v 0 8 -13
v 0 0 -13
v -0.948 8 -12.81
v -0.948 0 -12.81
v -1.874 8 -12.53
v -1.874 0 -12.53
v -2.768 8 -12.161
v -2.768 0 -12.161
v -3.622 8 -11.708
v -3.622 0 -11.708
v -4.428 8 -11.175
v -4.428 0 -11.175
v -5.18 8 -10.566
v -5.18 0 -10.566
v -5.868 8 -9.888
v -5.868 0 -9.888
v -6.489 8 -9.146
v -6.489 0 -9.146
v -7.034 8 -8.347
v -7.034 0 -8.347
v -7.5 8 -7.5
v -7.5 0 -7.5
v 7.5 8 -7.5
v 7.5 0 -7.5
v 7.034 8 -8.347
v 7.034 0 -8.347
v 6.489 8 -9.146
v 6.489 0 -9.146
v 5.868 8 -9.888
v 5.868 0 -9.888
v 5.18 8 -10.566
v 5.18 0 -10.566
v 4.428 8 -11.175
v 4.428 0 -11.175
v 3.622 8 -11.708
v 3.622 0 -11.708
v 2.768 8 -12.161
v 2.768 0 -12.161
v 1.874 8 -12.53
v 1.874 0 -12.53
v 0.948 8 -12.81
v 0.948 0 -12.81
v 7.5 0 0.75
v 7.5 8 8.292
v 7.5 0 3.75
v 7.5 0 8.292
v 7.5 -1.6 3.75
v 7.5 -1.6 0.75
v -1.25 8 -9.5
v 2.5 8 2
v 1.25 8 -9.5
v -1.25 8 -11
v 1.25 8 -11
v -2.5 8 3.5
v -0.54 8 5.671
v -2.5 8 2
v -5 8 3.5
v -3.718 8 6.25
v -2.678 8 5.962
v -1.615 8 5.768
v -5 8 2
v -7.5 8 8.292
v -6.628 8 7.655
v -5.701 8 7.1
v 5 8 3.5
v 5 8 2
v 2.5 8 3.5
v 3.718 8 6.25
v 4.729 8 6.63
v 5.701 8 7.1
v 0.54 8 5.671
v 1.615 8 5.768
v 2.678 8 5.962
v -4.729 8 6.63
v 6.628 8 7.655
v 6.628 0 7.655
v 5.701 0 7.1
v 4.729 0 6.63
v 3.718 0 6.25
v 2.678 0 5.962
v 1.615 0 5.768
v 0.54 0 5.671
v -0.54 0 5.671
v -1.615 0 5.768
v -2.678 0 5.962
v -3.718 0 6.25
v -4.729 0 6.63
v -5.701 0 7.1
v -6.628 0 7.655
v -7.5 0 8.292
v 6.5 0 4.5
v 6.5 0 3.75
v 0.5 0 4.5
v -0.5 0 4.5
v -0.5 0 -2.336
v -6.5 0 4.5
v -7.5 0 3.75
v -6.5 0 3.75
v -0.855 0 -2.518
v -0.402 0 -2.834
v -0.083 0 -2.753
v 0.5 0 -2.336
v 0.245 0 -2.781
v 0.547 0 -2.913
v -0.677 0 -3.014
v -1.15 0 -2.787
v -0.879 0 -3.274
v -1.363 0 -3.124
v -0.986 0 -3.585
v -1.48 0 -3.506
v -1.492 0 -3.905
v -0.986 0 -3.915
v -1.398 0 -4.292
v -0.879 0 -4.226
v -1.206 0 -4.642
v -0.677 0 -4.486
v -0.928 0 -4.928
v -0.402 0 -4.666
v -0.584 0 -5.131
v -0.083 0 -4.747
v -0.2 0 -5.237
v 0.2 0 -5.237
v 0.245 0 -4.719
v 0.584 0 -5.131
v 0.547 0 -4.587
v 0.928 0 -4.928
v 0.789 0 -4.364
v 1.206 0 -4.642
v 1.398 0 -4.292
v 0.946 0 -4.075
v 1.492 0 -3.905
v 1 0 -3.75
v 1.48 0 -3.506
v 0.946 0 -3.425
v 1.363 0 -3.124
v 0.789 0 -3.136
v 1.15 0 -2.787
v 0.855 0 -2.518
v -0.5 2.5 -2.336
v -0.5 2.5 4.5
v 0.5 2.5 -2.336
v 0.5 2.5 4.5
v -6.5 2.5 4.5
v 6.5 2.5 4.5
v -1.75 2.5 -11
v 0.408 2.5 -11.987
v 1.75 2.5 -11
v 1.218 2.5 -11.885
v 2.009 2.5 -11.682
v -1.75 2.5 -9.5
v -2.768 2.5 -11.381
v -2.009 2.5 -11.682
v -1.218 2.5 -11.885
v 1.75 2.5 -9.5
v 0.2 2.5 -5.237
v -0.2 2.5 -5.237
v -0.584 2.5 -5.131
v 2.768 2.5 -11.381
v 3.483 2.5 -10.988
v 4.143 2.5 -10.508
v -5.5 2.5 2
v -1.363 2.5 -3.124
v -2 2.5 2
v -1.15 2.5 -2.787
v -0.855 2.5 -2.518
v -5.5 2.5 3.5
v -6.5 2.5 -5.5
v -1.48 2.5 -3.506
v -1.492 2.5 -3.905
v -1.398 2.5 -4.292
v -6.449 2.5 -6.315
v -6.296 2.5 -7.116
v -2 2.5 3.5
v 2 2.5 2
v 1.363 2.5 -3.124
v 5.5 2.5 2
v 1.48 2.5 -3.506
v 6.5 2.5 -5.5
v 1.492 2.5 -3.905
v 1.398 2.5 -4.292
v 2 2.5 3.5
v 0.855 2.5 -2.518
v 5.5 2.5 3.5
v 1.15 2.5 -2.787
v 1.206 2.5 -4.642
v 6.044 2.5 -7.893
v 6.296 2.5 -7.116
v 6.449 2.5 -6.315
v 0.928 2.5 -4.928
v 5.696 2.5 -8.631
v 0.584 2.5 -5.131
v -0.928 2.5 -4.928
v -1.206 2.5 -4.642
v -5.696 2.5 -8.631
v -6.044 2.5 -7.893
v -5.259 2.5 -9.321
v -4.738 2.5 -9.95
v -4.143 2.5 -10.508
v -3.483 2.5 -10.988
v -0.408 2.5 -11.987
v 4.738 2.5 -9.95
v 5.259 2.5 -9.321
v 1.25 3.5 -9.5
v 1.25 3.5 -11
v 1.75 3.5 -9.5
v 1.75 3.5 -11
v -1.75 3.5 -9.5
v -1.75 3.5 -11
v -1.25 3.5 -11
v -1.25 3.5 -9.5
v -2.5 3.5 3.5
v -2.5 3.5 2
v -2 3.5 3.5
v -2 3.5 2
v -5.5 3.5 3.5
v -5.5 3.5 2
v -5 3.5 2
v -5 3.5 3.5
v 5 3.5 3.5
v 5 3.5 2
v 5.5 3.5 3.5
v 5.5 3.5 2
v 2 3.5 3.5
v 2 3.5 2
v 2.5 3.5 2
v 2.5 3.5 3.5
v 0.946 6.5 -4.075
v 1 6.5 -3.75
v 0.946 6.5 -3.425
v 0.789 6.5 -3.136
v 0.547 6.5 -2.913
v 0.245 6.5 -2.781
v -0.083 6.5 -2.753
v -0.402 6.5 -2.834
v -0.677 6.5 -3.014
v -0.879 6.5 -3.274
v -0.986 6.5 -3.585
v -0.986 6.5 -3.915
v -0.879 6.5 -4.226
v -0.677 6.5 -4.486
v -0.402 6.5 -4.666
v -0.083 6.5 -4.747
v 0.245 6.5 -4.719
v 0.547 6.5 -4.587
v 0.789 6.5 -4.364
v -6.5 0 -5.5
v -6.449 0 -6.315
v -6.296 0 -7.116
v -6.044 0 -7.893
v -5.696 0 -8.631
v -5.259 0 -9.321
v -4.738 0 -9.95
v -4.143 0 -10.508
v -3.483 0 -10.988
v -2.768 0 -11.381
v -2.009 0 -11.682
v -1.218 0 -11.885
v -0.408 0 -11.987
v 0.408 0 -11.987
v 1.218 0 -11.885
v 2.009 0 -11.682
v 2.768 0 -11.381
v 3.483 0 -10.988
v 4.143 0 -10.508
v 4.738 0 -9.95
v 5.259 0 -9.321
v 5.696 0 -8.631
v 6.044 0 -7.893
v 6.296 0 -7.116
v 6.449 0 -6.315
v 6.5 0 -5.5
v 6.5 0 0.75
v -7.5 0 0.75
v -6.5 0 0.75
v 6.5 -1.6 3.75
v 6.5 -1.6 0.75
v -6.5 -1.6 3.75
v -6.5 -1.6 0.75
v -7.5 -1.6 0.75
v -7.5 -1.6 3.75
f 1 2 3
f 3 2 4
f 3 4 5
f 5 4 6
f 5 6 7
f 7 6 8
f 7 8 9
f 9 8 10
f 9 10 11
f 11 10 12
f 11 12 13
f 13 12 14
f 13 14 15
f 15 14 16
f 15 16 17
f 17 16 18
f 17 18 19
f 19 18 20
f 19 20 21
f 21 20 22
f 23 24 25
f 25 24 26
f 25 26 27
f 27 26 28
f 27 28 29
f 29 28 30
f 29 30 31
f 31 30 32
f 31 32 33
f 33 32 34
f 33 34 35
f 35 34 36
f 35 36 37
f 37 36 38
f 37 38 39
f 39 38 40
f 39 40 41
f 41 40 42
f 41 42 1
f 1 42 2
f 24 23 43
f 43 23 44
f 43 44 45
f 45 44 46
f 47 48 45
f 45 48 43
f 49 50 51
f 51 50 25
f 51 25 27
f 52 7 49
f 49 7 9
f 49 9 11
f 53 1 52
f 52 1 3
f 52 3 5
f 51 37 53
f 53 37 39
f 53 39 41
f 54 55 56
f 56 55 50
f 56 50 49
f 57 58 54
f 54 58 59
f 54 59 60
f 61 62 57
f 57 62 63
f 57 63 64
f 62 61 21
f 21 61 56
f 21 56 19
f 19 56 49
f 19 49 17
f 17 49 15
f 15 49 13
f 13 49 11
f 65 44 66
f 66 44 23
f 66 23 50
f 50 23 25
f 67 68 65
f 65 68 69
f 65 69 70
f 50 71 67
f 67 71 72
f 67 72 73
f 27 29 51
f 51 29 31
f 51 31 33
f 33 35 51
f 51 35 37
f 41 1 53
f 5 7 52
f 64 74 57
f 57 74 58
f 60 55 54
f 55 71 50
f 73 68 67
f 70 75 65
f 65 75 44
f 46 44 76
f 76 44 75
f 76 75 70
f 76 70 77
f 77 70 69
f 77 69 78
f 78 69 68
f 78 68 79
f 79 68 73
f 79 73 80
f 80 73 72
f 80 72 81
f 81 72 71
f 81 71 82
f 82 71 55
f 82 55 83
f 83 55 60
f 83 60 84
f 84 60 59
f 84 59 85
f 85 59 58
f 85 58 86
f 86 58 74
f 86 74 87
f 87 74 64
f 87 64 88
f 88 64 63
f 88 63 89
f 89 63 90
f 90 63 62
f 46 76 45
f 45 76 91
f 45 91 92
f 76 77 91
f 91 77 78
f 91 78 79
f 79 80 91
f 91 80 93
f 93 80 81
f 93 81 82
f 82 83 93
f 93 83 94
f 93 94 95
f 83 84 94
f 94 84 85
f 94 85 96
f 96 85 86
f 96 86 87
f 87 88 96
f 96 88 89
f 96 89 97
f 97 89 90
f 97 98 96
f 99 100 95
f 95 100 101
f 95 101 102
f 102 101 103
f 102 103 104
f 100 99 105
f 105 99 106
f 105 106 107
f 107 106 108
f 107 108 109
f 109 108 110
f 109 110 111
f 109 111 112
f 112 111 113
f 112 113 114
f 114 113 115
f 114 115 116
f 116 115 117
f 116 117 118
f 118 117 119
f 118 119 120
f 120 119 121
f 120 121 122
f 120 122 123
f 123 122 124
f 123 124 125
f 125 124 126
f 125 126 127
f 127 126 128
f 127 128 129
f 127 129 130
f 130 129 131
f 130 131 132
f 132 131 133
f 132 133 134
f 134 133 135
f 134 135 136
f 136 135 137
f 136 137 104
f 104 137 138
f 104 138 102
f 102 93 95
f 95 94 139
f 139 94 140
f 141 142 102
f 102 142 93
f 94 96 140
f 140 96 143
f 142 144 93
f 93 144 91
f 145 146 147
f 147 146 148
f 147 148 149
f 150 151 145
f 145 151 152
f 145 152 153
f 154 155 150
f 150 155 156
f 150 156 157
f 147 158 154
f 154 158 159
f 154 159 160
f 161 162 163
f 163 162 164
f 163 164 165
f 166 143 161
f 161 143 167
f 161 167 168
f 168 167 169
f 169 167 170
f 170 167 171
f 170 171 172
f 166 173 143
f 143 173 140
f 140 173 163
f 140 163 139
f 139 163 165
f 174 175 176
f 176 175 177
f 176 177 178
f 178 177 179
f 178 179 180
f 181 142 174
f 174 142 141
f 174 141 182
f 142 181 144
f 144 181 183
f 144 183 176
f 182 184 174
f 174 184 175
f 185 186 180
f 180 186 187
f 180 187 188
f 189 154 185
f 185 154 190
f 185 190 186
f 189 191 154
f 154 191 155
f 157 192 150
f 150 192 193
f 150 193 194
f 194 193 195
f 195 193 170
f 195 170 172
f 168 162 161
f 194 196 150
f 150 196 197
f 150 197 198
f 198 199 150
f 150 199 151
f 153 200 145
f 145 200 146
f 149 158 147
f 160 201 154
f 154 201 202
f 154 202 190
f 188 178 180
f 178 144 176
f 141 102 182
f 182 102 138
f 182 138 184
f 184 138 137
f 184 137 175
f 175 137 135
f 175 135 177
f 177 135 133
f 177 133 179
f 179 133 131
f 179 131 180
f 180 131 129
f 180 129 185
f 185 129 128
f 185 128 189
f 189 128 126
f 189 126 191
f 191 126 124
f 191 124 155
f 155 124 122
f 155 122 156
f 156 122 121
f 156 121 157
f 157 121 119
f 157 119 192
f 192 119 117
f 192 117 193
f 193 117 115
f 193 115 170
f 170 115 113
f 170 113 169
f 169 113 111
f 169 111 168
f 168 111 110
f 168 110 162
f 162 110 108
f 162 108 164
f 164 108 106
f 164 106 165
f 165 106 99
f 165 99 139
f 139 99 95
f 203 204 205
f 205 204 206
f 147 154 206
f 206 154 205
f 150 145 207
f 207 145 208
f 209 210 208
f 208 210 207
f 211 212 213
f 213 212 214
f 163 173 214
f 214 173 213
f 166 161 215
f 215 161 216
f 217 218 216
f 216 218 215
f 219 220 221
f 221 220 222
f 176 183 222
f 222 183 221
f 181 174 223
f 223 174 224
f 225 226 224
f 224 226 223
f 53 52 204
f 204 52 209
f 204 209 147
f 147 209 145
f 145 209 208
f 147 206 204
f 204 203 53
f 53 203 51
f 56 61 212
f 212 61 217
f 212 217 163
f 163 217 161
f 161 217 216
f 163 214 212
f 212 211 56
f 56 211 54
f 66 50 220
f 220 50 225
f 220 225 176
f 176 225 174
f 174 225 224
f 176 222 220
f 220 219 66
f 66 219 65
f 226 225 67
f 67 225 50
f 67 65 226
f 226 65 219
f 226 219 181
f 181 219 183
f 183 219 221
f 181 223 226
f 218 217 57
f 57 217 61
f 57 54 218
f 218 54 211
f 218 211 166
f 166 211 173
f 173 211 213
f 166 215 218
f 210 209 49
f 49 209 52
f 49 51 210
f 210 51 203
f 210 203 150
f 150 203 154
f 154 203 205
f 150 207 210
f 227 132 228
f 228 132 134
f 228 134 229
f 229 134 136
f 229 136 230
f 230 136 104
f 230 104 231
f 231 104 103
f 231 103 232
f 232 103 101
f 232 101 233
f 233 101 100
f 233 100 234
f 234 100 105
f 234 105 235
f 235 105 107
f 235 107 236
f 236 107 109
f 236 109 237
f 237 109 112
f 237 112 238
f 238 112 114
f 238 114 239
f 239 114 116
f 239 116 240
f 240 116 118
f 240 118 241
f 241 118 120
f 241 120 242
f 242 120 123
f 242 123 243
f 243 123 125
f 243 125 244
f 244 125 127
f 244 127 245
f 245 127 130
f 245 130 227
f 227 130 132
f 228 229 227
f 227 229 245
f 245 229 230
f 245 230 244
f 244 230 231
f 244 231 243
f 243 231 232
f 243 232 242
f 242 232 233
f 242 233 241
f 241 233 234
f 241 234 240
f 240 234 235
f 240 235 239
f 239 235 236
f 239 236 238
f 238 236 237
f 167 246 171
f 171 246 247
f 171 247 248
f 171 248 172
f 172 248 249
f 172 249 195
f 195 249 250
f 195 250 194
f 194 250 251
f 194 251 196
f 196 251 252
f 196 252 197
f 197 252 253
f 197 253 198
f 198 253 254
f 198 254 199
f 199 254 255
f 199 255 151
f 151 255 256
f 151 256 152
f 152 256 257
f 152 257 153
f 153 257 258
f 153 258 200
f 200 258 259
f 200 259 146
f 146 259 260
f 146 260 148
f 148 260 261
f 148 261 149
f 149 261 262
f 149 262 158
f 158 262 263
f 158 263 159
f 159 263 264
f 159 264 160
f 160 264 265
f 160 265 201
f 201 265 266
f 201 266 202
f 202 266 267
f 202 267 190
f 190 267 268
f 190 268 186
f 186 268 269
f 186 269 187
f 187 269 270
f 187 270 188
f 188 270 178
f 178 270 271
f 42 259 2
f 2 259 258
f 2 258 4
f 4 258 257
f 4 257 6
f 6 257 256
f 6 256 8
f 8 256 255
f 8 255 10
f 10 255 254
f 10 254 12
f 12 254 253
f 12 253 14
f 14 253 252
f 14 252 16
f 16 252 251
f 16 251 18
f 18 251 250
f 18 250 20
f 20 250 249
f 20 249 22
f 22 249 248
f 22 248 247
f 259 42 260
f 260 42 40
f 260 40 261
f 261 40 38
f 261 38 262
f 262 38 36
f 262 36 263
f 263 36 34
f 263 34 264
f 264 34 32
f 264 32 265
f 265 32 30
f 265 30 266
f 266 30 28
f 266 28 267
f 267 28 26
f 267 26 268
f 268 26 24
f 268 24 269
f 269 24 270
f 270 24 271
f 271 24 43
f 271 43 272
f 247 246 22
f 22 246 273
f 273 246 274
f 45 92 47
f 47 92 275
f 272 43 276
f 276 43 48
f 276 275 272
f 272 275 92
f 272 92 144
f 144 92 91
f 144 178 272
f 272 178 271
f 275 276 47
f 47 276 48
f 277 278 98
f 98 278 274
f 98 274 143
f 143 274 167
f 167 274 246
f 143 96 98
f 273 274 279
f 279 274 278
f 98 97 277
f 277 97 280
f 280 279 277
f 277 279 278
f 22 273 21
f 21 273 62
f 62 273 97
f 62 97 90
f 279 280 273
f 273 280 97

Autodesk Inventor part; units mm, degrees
ref_plane "YZ Plane" through (0, 0, 0) normal (1, 0, 0) x (0, 1, 0)
ref_plane "XZ Plane" through (0, 0, 0) normal (0, 1, 0) x (-1, 0, 0)
ref_plane "XY Plane" through (0, 0, 0) normal (0, 0, 1) x (1, 0, 0)
sketch "Sketch1" plane through (0, 0, 0) normal (0, 1, 0) x (-1, 0, 0)
  line L0 (-7.5, 5.5) -> (7.5, 5.5)
  line L1 (7.5, 5.5) -> (7.5, -5.5)
  line L2 (7.5, -5.5) -> (-7.5, -5.5)
  line L3 (-7.5, -5.5) -> (-7.5, 5.5)
  line L4 (-7.5, 5.5) -> (7.5, -5.5) construction
  line L5 (7.5, 5.5) -> (-7.5, -5.5) construction
  circle A0 centre (0, -5.5) radius 7.5 construction
  arc A1 (-7.5, -5.5) -> (7.5, -5.5) centre (0, -5.5) ccw
  point P0 (0, 0)
  dimension "d0" = 11
  dimension "d1" = 15
extrude "Extrusion1" add sketch "Sketch1" along normal blind 8
sketch "Sketch2" plane through (0, 0, 0) normal (0, -1, 0) x (1, 0, 0)
  line L0 (7.5, 9.25) -> (-7.5, 9.25)
  line L1 (-7.5, 9.25) -> (-7.5, -20.75)
  line L2 (-7.5, -20.75) -> (7.5, -20.75)
  line L3 (7.5, -20.75) -> (7.5, 9.25)
  line L4 (7.5, 9.25) -> (-7.5, -20.75) construction
  line L5 (-7.5, 9.25) -> (7.5, -20.75) construction
  line L6 (-7.5, 5.5) -> (7.5, 5.5) projected
  line L7 (7, 8.75) -> (-7, 8.75) construction
  line L8 (-7, 8.75) -> (-7, -20.25) construction
  line L9 (-7, -20.25) -> (7, -20.25) construction
  line L10 (7, -20.25) -> (7, 8.75) construction
  line L11 (7, 8.75) -> (-7, -20.25) construction
  line L12 (-7, 8.75) -> (7, -20.25) construction
  point P0 (0, 0)
  point P1 (0, -5.75)
  dimension "d4" = 15
  dimension "d5" = 30
  dimension "d6" = 3.75
  dimension "d18" = 0.5
  dimension "d19" = 0.5
sketch "Sketch4" plane through (0, 0, 0) normal (0, -1, 0) x (1, 0, 0)
  line L0 (-7.5, -5.5) -> (-7.5, 5.5) projected
  line L1 (-7.5, 3.75) -> (-6.5, 3.75)
  line L2 (-6.5, 3.75) -> (-6.5, 0.75)
  line L3 (-6.5, 0.75) -> (-7.5, 0.75)
  line L4 (-7.5, 0.75) -> (-7.5, 3.75)
  line L5 (7.5, 5.5) -> (7.5, -5.5) projected
  line L6 (7.5, 0.75) -> (6.5, 0.75)
  line L7 (6.5, 0.75) -> (6.5, 3.75)
  line L8 (6.5, 3.75) -> (7.5, 3.75)
  line L9 (7.5, 3.75) -> (7.5, 0.75)
  line L10 (-7.5, -20.25) -> (7.5, -20.25) construction
  line L11 (7.5, -20.25) -> (7.5, 9.75) construction
  line L12 (7.5, 9.75) -> (-7.5, 9.75) construction
  line L13 (-7.5, 9.75) -> (-7.5, -20.25) construction
  line L14 (-7.5, -20.25) -> (7.5, 9.75) construction
  line L15 (7.5, -20.25) -> (-7.5, 9.75) construction
  line L16 (-7.5, 5.5) -> (7.5, 5.5) construction
  arc A0 (-7.5, -5.5) -> (7.5, -5.5) centre (0, -5.5) ccw construction
  point P0 (0, 0)
  point P1 (0, -5.25)
  point P2 (0, -13)
  point P3 (-7, 3.75)
  point P4 (-7.5, 0.75)
  point P5 (-7, 0.75)
  point P6 (7.5, 3.75)
  point P7 (-7.5, 0.75)
  dimension "d20" = 1
  dimension "d21" = 3
  dimension "d22" = 1
  dimension "d23" = 3
  dimension "d24" = 15
  dimension "d25" = 30
  dimension "d27" = 7.25
  dimension "d106" = 0.75
extrude "Extrusion3" add sketch "Sketch4" along normal blind 1.6
sketch "Sketch6" plane through (0, 0, 0) normal (0, -1, 0) x (1, 0, 0)
  line L0 (7.5, 11.25) -> (-7.5, 11.25)
  line L1 (-7.5, 11.25) -> (-7.5, -18.75)
  line L2 (-7.5, -18.75) -> (7.5, -18.75)
  line L3 (7.5, -18.75) -> (7.5, 11.25)
  line L4 (7.5, 11.25) -> (-7.5, -18.75) construction
  line L5 (-7.5, 11.25) -> (7.5, -18.75) construction
  line L6 (7, 10.75) -> (-7, 10.75) construction
  line L7 (-7, 10.75) -> (-7, -18.25) construction
  line L8 (-7, -18.25) -> (7, -18.25) construction
  line L9 (7, -18.25) -> (7, 10.75) construction
  line L10 (7, 10.75) -> (-7, -18.25) construction
  line L11 (-7, 10.75) -> (7, -18.25) construction
  circle A0 centre (0, -3.75) radius 1
  circle A1 centre (0, -3.75) radius 1.5
  line L12 (-6.5, 4.5) -> (6.5, 4.5)
  line L13 (6.5, 4.5) -> (6.5, -5.5)
  line L14 (6.5, -5.5) -> (-6.5, -5.5)
  line L15 (-6.5, -5.5) -> (-6.5, 4.5)
  line L16 (-7.5, 5.5) -> (7.5, 5.5) projected
  arc A2 (-7.5, -5.5) -> (7.5, -5.5) centre (0, -5.5) ccw projected
  circle A3 centre (0, -5.5) radius 6.5
  point P0 (0, 0)
  point P1 (-7.5, -3.75)
  point P2 (6.5, -5.5)
  dimension "d31" = 15
  dimension "d32" = 30
  dimension "d34" = 0.5
  dimension "d35" = 0.5
  dimension "d36" = 2
  dimension "d37" = 0.5
  dimension "d38" = 1
  dimension "d39" = 1
  dimension "d40" = 1
  dimension "d41" = 1
  dimension "d107" = 3.75
extrude "Extrusion4" cut sketch "Sketch6" against normal blind 2.5 contours A0 | L12 L13 A3 L15 | A3 L14 | L14 A3
sketch "Sketch10" plane through (0, 8, 0) normal (0, 1, 0) x (1, 0, 0)
  point P0 (0, 0)
sketch "Sketch11" plane through (0, 0, 0) normal (0, -1, 0) x (1, 0, 0)
  line L0 (-5, 3.5) -> (-2.5, 3.5)
  line L1 (-2.5, 3.5) -> (-2.5, 2)
  line L2 (-2.5, 2) -> (-5, 2)
  line L3 (-5, 2) -> (-5, 3.5)
  line L4 (2.5, 3.5) -> (5, 3.5)
  line L5 (5, 3.5) -> (5, 2)
  line L6 (5, 2) -> (2.5, 2)
  line L7 (2.5, 2) -> (2.5, 3.5)
  line L8 (-6.5, 3.75) -> (-7.5, 3.75) projected
  line L9 (-6.5, 0.75) -> (-6.5, 3.75) projected
  line L10 (6.5, 3.75) -> (6.5, 0.75) projected
  line L11 (-6.5, 4.5) -> (6.5, 4.5) projected
  line L12 (-1.25, -11) -> (1.25, -11)
  line L13 (1.25, -11) -> (1.25, -9.5)
  line L14 (1.25, -9.5) -> (-1.25, -9.5)
  line L15 (-1.25, -9.5) -> (-1.25, -11)
  circle A0 centre (0, -3.75) radius 1 projected
  point P0 (0, 0)
  point P1 (-3.75, 3.5)
  point P2 (3.75, 3.5)
  point P3 (1.25, -10.25)
  point P4 (2.5, 2.75)
  point P5 (0, -9.5)
  point P6 (3.75, 2)
  point P7 (-2.5, 2.75)
  dimension "d51" = 2.5
  dimension "d52" = 1.5
  dimension "d55" = 2.75
  dimension "d56" = 2.75
  dimension "d60" = 13
  dimension "d61" = 3.75
  dimension "d62" = 3.75
  dimension "d103" = 6.5
  dimension "d104" = 6.5
extrude "Extrusion8" cut sketch "Sketch11" against normal blind 10 contours L0 L1 L2 L3 | L4 L5 L6 L7 | L15 L14 L13 L12
sketch "Sketch12" plane through (0, 2.5, 0) normal (0, -1, 0) x (1, 0, 0)
  line L0 (5, 2) -> (5, 3.5) construction
  line L1 (2.5, 2) -> (5, 2) construction
  line L2 (5, 3.5) -> (2.5, 3.5) construction
  line L3 (2.5, 3.5) -> (2.5, 2) construction
  line L4 (2.5, 2) -> (5, 2) construction
  line L5 (5, 2) -> (5, 3.5) construction
  line L6 (-2.5, 2) -> (-2.5, 3.5) construction
  line L7 (-2.5, 2) -> (-5, 2) construction
  line L8 (-2.5, 3.5) -> (-5, 3.5) construction
  line L9 (-5, 3.5) -> (-5, 2) construction
  line L10 (-5, 2) -> (-2.5, 2) construction
  line L11 (-2.5, 2) -> (-2.5, 3.5) construction
  line L12 (-1.25, -9.5) -> (1.25, -9.5) construction
  line L13 (-1.25, -9.5) -> (-1.25, -11) construction
  line L14 (1.25, -9.5) -> (-1.25, -9.5) construction
  line L15 (-1.25, -9.5) -> (-1.25, -11) construction
  line L16 (-1.25, -11) -> (1.25, -11) construction
  line L17 (1.25, -11) -> (1.25, -9.5) construction
  line L18 (5.5, 3.5) -> (2, 3.5)
  line L19 (2, 3.5) -> (2, 2)
  line L20 (2, 2) -> (5.5, 2)
  line L21 (5.5, 2) -> (5.5, 3.5)
  line L22 (1.75, -9.5) -> (-1.75, -9.5)
  line L23 (-1.75, -9.5) -> (-1.75, -11)
  line L24 (-1.75, -11) -> (1.75, -11)
  line L25 (1.75, -11) -> (1.75, -9.5)
  line L26 (-2, 3.5) -> (-5.5, 3.5)
  line L27 (-5.5, 3.5) -> (-5.5, 2)
  line L28 (-5.5, 2) -> (-2, 2)
  line L29 (-2, 2) -> (-2, 3.5)
  point P0 (0, 0)
  point P1 (-2.5, 2.75)
  point P2 (-2, 2.75)
  point P3 (-3.75, 2)
  point P4 (-3.75, 2)
  point P5 (-3.75, 3.5)
  point P6 (-3.75, 3.5)
  point P7 (-5, 2.75)
  point P8 (-5.5, 2.75)
  point P9 (1.25, -10.25)
  point P10 (1.75, -10.25)
  point P11 (0, -11)
  point P12 (-1.25, -10.25)
  dimension "d63" = 0.5
  dimension "d64" = 0
  dimension "d65" = 0
  dimension "d67" = 0.5
  dimension "d68" = 0
  dimension "d69" = 0
  dimension "d70" = 0.5
  dimension "d71" = 0.5
  dimension "d72" = 0
  dimension "d73" = 0
  dimension "d74" = 0.5
  dimension "d96" = 0.5
extrude "Extrusion9" cut sketch "Sketch12" against normal blind 1
sketch "Sketch16" plane through (0, 2.5, 0) normal (0, -1, 0) x (1, 0, 0)
  line L0 (-6.5, -5.5) -> (-6.5, 4.5) construction
  line L1 (-6.5, 4.5) -> (6.5, 4.5) construction
  line L2 (-6.5, 4.5) -> (6.5, 4.5) construction
  line L3 (-0.5, 4.5) -> (0.5, 4.5)
  line L4 (0.5, 4.5) -> (0.5, -2.75)
  line L5 (0.5, -2.75) -> (-0.5, -2.75)
  line L6 (-0.5, -2.75) -> (-0.5, 4.5)
  circle A0 centre (0, -3.75) radius 1.5 construction
  circle A1 centre (0, -3.75) radius 1.75 construction
  line L7 (-6.5, -2.75) -> (6.5174, -2.75) construction
  circle A2 centre (0, -3.75) radius 1.5 construction
  circle A3 centre (0, -3.75) radius 1 construction
  line L8 (6.5, 0.75) -> (6.5, -5.5) projected
  line L9 (-6.5, -5.873) -> (6.5, -5.873)
  line L10 (6.5, -5.873) -> (6.5, -6.873)
  line L11 (6.5, -6.873) -> (-6.5, -6.873)
  line L12 (-6.5, -6.873) -> (-6.5, -5.873)
  point P0 (0, 0)
  point P1 (0, 4.5)
  point P2 (0.0087, -2.75)
  dimension "d94" = 1
  dimension "d95" = 1
extrude "Extrusion10" add sketch "Sketch16" along normal blind 2.5 contours L3 L4 L5 L6
sketch "Sketch19" plane through (-7.5, 0, 5.5) normal (0, 0, 1) x (1, 0, 0)
  line L0 (15, 0) -> (15, 8) projected
  line L1 (0, 8) -> (15, 8)
  line L2 (15, 8) -> (15, 0)
  line L3 (15, 0) -> (0, 0)
  line L4 (0, 0) -> (0, 8)
  point P0 (7.5, 0)
extrude "Extrusion13" add sketch "Sketch19" along normal blind 6
sketch "Sketch18" plane through (0, 8, 0) normal (0, 1, 0) x (1, 0, 0)
  line L0 (-7.5, -3.75) -> (-7.5, -5.5) projected
  line L1 (-7.5, -5.5) -> (-7.5, -8.2917)
  line L2 (7.5, -5.5) -> (7.5, -8.2917)
  arc A0 (7.5, -8.2917) -> (-7.5, -8.2917) centre (0, -17.6592) ccw
  line L3 (-7.5, -5.5) -> (0, -3.75)
  line L4 (-7.5, -5.5) -> (7.5, -5.5) projected
  line L5 (0, -3.75) -> (7.5, -5.5)
  line L6 (-7.5, -8.2917) -> (-7.5, -17.8663)
  line L7 (-7.5, -17.8663) -> (8.2387, -17.8663)
  line L8 (8.2387, -17.8663) -> (7.5, -8.2917)
  line L9 (-7.5, -8.2917) -> (-7.5, -5.5)
  point P0 (0, 0)
  point P1 (3.395, -5.5)
  point P2 (-3.395, -5.5)
  dimension "d108" = 12
extrude "Extrusion12" cut sketch "Sketch18" against normal blind 8 contours A0 L8 L7 L6
sketch "Sketch21" plane through (0, 8, 0) normal (0, 1, 0) x (1, 0, 0)
  line L0 (-7.5, 5.5) -> (-7.5, -8.2917) projected
  line L1 (-7.5, 5.5) -> (-4.5586, 5.5)
  line L2 (-4.5586, 5.5) -> (-4.5586, 13.4633)
  line L3 (-4.5586, 13.4633) -> (-7.5, 13.4633)
  line L4 (-7.5, 13.4633) -> (-7.5, 5.5)
  arc A0 (7.5, 5.5) -> (-7.5, 5.5) centre (0, 5.5) ccw projected
  line L5 (7.5, 5.5) -> (3.8632, 5.5)
  line L6 (3.8632, 5.5) -> (3.8632, 13.1156)
  line L7 (3.8632, 13.1156) -> (7.5, 13.1156)
  line L8 (7.5, 13.1156) -> (7.5, 5.5)
  point P0 (0, 0)
  point P1 (3.8632, 11.9285)
  point P2 (-4.5586, 11.4556)
  point P3 (-7.5, -5.5)
extrude "Extrusion15" add sketch "Sketch21" against normal blind 8 contours L6 L7 L8 A0 | L4 L3 L2 A0
sketch "Sketch20" plane through (0, 8, 0) normal (0, 1, 0) x (1, 0, 0)
  arc A0 (7.5, 5.5) -> (-7.5, 5.5) centre (0, 5.5) ccw projected
  line L0 (-7.5, 5.5) -> (-7.5, 7.5)
  line L1 (7.5, 5.5) -> (7.5, 7.5)
  arc A1 (0, 13) -> (-7.5, 7.5) centre (1.4853, 3.1109) ccw
  arc A2 (7.5, 7.5) -> (0, 13) centre (-1.4853, 3.1109) ccw
  line L2 (-7.5, 7.5) -> (-7.5, 19.3065)
  line L3 (-7.5, 7.5) -> (4.3065, 7.5) construction
  line L4 (-7.5, 19.3065) -> (7.5, 19.3065)
  line L5 (7.5, 19.3065) -> (7.5, 7.5)
  point P0 (0, 0)
  point P1 (-6.7259, 8.8184)
  point P2 (6.7259, 8.8184)
  dimension "d113" = 2
  dimension "d114" = 10
  dimension "d115" = 90
  dimension "d116" = 90
extrude "Extrusion14" cut sketch "Sketch20" against normal blind 10 contours A2 A0 | A0 A1 L2 L4 L5 A2 | A1 A0
sketch "Sketch23" plane through (0, 2.5, -3.75) normal (0, -1, 0) x (1, 0, 0)
  circle A0 centre (0, 0) radius 1 projected
  circle A1 centre (0, 0) radius 1
  point P0 (0, 3.75)
extrude "Extrusion17" cut sketch "Sketch23" against normal blind 4
sketch "Sketch22" plane through (0, 8, 0) normal (0, 1, 0) x (1, 0, 0)
  line L0 (7.5, 7.5) -> (7.5, -8.2917) projected
  line L1 (-7.5, 7.5) -> (-7.5, -8.2917) projected
  arc A0 (7.5, -7.2917) -> (-7.5, -7.2917) centre (0, -16.6592) ccw
  line L2 (-7.5, -7.2917) -> (7.5, -7.2917) construction
  line L3 (-7.5, -7.2917) -> (7.5, -7.2917) construction
  arc A1 (7.5, -8.2917) -> (-7.5, -8.2917) centre (0, -17.6592) ccw projected
  arc A2 (7.5, -6.2917) -> (-7.5, -6.2917) centre (0, -15.6592) ccw
  line L4 (-7.5, -6.2917) -> (7.5, -6.2917) construction
  line L5 (-7.5, -6.2917) -> (7.5, -6.2917) construction
  point P0 (0, 0)
  point P1 (0, -4.6592)
  point P2 (0, -5.6592)
  point P3 (0, -3.6592)
  dimension "d121" = 0
  dimension "d122" = 1
  dimension "d123" = 1
  dimension "d124" = 0
  dimension "d125" = 1
  dimension "d126" = 1
sketch "Sketch14" plane through (0, 2.5, 0) normal (0, -1, 0) x (1, 0, 0)
  line L0 (5, 2.75) -> (2.5, 2.75) construction
  line L1 (2.5, 2.75) -> (2.5, 1.25) construction
  line L2 (2.5, 1.25) -> (5, 1.25) construction
  line L3 (5, 1.25) -> (5, 2.75) construction
  line L4 (5.5, 3.25) -> (2, 3.25)
  line L5 (2, 3.25) -> (2, 0.75)
  line L6 (2, 0.75) -> (5.5, 0.75)
  line L7 (5.5, 0.75) -> (5.5, 3.25)
  dimension "d86" = 0.5
  dimension "d87" = 0.5
sketch "Sketch15" plane through (0, 3.5, 0) normal (0, -1, 0) x (1, 0, 0)
  line L0 (5, 2.75) -> (2.5, 2.75)
  line L1 (2.5, 2.75) -> (2.5, 1.25)
  line L2 (2.5, 1.25) -> (5, 1.25)
  line L3 (5, 1.25) -> (5, 2.75)
  point P0 (0, 0)
sketch "Sketch8" plane through (0, 0, -3.75) normal (0, -1, 0) x (1, 0, 0)
  circle A0 centre (0, 0) radius 1.75
  circle A1 centre (0, 0) radius 1.5 projected
  circle A2 centre (0, 0) radius 1.5
  point P0 (0, 3.75)
  dimension "d46" = 0.25
sketch "Sketch7" plane through (0, 2.5, -3.75) normal (0, -1, 0) x (1, 0, 0)
  circle A0 centre (0, 0) radius 1.25
  point P0 (0, 3.75)
properties part number "ORGATE"
